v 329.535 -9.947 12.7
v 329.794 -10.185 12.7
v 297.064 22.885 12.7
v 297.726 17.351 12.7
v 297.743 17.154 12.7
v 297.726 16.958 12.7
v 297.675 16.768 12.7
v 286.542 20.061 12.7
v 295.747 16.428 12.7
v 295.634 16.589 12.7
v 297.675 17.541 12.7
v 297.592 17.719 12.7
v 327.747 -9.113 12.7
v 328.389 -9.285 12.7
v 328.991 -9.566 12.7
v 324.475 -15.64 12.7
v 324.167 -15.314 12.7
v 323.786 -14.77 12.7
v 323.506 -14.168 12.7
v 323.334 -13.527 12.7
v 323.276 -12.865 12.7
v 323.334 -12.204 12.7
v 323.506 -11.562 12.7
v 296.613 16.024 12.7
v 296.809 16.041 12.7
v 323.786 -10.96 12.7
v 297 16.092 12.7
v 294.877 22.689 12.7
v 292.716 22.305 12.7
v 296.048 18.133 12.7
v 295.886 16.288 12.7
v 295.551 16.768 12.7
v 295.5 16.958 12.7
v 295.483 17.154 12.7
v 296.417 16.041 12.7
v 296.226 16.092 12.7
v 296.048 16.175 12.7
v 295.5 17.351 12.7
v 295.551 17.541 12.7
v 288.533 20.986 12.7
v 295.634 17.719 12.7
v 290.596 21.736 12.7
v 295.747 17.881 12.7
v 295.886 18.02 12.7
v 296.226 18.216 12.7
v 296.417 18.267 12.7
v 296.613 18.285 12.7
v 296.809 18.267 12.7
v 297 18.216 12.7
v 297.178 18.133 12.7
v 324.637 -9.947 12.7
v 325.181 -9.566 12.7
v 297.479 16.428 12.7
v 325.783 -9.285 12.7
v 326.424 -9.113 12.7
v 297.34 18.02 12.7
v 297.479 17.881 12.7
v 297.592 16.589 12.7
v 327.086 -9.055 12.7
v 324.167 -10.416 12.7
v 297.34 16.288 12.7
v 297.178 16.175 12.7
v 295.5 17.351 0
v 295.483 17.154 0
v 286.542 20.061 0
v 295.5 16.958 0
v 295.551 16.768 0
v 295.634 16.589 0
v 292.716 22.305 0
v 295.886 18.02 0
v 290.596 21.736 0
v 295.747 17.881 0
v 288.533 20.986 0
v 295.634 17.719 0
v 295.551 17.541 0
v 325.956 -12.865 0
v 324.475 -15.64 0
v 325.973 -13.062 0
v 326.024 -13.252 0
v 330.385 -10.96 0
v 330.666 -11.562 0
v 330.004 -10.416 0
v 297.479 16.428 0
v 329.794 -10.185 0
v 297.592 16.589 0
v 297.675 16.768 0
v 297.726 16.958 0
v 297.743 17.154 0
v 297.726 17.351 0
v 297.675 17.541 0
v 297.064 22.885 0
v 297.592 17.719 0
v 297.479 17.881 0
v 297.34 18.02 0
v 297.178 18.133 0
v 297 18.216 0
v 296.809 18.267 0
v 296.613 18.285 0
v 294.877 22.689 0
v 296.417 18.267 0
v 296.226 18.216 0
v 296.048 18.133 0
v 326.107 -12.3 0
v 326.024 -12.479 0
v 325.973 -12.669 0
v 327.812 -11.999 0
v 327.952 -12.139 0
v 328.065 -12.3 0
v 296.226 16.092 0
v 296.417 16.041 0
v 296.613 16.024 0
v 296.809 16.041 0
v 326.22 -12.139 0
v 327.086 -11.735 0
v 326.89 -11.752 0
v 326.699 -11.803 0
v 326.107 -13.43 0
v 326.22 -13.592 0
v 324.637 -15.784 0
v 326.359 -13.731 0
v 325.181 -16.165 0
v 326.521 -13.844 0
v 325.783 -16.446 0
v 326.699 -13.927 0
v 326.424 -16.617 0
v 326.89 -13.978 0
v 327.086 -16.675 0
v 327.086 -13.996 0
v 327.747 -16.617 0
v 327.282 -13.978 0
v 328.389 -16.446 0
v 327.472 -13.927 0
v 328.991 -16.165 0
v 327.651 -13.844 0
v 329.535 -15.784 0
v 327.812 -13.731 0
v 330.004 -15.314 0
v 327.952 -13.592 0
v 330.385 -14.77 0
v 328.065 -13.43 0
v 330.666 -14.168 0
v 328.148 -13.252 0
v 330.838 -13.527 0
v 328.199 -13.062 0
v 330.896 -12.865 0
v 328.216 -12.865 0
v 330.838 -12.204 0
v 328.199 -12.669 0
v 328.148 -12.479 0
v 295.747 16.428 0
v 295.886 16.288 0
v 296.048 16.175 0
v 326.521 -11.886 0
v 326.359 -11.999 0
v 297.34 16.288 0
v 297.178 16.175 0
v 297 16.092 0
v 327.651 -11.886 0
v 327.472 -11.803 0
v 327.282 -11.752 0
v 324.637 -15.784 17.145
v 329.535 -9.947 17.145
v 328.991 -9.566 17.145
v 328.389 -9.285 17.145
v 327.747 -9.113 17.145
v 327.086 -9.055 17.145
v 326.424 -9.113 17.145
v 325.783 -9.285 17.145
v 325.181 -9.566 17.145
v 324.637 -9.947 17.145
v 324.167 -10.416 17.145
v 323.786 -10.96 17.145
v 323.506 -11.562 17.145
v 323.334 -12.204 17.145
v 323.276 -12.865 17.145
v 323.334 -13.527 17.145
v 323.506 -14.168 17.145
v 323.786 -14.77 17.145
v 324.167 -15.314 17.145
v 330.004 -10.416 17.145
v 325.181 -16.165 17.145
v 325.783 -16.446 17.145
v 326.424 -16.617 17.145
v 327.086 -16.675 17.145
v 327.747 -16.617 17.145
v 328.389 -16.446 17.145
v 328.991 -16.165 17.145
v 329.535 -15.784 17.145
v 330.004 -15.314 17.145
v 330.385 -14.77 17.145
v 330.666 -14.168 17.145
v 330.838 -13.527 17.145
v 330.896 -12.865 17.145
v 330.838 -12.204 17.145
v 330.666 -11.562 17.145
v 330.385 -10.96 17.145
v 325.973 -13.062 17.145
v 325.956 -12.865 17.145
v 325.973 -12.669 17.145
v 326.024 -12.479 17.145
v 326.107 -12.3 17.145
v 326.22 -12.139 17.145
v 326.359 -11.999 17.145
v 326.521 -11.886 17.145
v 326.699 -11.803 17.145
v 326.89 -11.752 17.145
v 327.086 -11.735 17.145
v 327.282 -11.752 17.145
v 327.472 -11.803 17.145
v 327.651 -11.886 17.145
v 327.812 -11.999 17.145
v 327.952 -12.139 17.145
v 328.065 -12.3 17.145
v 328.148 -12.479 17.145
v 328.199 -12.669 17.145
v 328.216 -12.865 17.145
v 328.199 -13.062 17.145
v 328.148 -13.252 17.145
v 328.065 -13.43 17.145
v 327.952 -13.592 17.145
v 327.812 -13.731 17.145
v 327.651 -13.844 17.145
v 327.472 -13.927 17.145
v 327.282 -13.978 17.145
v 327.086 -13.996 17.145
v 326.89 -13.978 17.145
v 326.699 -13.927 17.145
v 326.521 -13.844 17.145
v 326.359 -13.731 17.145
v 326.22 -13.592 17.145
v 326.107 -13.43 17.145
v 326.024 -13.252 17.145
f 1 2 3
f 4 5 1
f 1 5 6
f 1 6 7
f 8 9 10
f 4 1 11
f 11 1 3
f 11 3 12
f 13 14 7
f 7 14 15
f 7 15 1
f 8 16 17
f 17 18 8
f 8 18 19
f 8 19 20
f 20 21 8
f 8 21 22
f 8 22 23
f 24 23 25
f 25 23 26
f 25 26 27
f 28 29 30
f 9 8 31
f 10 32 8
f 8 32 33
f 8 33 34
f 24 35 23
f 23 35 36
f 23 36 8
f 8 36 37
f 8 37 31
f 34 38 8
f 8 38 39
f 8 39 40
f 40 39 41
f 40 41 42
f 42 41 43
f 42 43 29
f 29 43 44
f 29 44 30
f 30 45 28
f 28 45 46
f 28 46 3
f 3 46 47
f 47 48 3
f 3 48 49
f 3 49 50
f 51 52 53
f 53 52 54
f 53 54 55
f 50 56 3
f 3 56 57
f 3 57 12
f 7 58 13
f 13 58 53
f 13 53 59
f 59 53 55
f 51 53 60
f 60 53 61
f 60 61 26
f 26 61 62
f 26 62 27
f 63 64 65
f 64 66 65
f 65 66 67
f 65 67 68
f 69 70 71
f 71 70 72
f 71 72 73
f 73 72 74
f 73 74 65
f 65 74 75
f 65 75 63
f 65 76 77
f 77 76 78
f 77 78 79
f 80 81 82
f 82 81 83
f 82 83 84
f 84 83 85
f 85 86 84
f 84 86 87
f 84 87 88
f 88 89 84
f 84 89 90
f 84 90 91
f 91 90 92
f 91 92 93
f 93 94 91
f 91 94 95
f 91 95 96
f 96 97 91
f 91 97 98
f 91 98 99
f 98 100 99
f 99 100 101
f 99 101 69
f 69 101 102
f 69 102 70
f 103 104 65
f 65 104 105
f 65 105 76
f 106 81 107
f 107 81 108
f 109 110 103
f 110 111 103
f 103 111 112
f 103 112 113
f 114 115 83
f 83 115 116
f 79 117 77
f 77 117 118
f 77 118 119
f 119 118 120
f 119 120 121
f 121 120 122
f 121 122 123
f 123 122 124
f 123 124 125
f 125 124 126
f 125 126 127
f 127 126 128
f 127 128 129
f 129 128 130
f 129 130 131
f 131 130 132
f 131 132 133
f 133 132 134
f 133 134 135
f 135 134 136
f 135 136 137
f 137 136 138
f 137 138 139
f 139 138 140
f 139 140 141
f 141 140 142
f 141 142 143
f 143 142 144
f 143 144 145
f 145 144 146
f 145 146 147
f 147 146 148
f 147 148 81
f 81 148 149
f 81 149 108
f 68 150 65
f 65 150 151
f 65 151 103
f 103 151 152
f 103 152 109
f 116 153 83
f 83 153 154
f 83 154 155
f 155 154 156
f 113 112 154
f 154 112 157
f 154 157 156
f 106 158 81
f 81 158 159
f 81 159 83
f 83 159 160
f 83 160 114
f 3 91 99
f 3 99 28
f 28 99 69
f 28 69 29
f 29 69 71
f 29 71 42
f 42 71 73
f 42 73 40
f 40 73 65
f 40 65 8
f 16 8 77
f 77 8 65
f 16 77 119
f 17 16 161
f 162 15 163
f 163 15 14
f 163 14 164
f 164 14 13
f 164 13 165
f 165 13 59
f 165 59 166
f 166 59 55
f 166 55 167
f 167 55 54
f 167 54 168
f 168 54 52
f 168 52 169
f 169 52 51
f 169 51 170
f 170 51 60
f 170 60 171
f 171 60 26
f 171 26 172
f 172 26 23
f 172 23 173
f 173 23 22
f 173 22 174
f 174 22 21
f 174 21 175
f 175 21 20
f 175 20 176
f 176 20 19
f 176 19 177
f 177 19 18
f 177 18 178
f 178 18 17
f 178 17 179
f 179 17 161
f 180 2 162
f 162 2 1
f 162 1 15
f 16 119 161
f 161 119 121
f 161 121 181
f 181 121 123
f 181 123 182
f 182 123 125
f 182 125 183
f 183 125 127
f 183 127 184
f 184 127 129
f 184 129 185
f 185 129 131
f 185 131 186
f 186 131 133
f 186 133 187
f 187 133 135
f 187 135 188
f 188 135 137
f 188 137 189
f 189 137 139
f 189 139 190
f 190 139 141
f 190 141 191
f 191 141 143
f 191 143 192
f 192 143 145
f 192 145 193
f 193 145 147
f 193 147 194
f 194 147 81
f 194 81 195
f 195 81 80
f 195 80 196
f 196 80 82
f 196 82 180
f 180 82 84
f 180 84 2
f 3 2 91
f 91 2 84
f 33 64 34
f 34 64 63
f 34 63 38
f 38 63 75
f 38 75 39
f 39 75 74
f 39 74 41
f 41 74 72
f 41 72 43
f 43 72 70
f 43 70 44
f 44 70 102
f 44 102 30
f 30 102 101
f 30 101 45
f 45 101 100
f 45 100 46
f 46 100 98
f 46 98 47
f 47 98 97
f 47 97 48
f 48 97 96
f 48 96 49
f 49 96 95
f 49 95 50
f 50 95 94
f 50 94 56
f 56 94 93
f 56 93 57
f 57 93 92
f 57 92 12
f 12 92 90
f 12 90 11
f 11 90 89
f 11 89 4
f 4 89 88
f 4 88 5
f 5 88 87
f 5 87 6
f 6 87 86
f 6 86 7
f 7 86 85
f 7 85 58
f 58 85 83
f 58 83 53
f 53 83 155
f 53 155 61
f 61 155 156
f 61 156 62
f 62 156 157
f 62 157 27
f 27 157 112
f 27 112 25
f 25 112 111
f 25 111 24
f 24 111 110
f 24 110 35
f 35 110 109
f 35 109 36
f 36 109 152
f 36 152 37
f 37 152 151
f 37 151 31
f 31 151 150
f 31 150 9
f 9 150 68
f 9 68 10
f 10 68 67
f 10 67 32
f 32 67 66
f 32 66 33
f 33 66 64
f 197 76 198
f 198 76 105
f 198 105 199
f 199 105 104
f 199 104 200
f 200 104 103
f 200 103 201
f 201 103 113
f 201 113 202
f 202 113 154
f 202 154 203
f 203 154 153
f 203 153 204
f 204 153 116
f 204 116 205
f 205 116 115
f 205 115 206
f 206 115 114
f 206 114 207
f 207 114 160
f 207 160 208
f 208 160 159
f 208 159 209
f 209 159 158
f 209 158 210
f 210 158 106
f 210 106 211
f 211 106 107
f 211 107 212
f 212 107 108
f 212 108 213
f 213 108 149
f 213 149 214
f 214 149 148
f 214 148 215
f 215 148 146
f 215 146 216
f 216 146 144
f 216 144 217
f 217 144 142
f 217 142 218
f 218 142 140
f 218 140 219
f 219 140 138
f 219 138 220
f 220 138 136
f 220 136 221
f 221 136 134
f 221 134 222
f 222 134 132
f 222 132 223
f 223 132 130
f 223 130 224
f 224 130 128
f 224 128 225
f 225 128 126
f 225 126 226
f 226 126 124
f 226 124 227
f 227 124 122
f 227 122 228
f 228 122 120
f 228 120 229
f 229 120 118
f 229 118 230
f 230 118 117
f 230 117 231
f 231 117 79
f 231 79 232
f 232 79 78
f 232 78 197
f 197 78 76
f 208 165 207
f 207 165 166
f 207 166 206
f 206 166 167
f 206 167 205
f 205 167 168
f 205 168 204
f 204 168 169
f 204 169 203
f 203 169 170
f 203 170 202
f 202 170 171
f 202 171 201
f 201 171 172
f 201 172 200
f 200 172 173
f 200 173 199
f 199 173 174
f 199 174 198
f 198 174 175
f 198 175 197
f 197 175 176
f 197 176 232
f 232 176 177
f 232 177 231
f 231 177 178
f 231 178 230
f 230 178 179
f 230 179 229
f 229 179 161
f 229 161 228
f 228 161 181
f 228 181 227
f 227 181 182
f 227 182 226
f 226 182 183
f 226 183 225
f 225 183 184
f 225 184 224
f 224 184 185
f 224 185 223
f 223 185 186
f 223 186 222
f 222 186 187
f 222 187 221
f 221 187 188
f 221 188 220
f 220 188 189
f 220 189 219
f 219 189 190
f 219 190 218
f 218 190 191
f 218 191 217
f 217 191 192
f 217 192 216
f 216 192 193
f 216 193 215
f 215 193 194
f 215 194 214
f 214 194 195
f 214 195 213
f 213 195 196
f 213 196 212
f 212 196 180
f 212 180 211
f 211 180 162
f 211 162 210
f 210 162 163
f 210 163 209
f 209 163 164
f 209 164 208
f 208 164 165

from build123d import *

# Parameters (mm, degrees)
SKETCH1_R      = 1.1303
SKETCH1_R_2    = 1.130299999
EXTRUDE1_DEPTH = 12.7
SKETCH2_R      = 3.810000001
SKETCH2_R_2    = 1.130299999
EXTRUDE2_DEPTH = 17.145


with BuildPart() as part:
    # Sketch1 → Extrude1 (new body)
    with BuildSketch(Plane.XY):
        with BuildLine():
            Line((286.542223003, 20.061166103), (324.474632327, -15.639737839))
            ThreePointArc((324.474632327, -15.639737839), (329.813577235, -15.525304753), (329.793827414, -10.185170147))
            Line((329.793827414, -10.185170147), (297.063524693, 22.885170148))
            ThreePointArc((297.063524693, 22.885170148), (291.649695142, 22.043861139), (286.542223003, 20.061166103))
        make_face()
        with Locations((296.613066371, 17.154306926)):
            Circle(SKETCH1_R, mode=Mode.SUBTRACT)
        with Locations((327.08586457, -12.865289034)):
            Circle(SKETCH1_R_2, mode=Mode.SUBTRACT)
    extrude(amount=EXTRUDE1_DEPTH)

    # Sketch2 → Extrude2 (add)
    with BuildSketch(Plane.XY):
        with Locations(Location((327.08586457, -12.865289034, 0), (0, 0, 226.735854521))):
            Circle(SKETCH2_R)
        with Locations((327.08586457, -12.865289034)):
            Circle(SKETCH2_R_2, mode=Mode.SUBTRACT)
    extrude(amount=EXTRUDE2_DEPTH)


solid = part.part
